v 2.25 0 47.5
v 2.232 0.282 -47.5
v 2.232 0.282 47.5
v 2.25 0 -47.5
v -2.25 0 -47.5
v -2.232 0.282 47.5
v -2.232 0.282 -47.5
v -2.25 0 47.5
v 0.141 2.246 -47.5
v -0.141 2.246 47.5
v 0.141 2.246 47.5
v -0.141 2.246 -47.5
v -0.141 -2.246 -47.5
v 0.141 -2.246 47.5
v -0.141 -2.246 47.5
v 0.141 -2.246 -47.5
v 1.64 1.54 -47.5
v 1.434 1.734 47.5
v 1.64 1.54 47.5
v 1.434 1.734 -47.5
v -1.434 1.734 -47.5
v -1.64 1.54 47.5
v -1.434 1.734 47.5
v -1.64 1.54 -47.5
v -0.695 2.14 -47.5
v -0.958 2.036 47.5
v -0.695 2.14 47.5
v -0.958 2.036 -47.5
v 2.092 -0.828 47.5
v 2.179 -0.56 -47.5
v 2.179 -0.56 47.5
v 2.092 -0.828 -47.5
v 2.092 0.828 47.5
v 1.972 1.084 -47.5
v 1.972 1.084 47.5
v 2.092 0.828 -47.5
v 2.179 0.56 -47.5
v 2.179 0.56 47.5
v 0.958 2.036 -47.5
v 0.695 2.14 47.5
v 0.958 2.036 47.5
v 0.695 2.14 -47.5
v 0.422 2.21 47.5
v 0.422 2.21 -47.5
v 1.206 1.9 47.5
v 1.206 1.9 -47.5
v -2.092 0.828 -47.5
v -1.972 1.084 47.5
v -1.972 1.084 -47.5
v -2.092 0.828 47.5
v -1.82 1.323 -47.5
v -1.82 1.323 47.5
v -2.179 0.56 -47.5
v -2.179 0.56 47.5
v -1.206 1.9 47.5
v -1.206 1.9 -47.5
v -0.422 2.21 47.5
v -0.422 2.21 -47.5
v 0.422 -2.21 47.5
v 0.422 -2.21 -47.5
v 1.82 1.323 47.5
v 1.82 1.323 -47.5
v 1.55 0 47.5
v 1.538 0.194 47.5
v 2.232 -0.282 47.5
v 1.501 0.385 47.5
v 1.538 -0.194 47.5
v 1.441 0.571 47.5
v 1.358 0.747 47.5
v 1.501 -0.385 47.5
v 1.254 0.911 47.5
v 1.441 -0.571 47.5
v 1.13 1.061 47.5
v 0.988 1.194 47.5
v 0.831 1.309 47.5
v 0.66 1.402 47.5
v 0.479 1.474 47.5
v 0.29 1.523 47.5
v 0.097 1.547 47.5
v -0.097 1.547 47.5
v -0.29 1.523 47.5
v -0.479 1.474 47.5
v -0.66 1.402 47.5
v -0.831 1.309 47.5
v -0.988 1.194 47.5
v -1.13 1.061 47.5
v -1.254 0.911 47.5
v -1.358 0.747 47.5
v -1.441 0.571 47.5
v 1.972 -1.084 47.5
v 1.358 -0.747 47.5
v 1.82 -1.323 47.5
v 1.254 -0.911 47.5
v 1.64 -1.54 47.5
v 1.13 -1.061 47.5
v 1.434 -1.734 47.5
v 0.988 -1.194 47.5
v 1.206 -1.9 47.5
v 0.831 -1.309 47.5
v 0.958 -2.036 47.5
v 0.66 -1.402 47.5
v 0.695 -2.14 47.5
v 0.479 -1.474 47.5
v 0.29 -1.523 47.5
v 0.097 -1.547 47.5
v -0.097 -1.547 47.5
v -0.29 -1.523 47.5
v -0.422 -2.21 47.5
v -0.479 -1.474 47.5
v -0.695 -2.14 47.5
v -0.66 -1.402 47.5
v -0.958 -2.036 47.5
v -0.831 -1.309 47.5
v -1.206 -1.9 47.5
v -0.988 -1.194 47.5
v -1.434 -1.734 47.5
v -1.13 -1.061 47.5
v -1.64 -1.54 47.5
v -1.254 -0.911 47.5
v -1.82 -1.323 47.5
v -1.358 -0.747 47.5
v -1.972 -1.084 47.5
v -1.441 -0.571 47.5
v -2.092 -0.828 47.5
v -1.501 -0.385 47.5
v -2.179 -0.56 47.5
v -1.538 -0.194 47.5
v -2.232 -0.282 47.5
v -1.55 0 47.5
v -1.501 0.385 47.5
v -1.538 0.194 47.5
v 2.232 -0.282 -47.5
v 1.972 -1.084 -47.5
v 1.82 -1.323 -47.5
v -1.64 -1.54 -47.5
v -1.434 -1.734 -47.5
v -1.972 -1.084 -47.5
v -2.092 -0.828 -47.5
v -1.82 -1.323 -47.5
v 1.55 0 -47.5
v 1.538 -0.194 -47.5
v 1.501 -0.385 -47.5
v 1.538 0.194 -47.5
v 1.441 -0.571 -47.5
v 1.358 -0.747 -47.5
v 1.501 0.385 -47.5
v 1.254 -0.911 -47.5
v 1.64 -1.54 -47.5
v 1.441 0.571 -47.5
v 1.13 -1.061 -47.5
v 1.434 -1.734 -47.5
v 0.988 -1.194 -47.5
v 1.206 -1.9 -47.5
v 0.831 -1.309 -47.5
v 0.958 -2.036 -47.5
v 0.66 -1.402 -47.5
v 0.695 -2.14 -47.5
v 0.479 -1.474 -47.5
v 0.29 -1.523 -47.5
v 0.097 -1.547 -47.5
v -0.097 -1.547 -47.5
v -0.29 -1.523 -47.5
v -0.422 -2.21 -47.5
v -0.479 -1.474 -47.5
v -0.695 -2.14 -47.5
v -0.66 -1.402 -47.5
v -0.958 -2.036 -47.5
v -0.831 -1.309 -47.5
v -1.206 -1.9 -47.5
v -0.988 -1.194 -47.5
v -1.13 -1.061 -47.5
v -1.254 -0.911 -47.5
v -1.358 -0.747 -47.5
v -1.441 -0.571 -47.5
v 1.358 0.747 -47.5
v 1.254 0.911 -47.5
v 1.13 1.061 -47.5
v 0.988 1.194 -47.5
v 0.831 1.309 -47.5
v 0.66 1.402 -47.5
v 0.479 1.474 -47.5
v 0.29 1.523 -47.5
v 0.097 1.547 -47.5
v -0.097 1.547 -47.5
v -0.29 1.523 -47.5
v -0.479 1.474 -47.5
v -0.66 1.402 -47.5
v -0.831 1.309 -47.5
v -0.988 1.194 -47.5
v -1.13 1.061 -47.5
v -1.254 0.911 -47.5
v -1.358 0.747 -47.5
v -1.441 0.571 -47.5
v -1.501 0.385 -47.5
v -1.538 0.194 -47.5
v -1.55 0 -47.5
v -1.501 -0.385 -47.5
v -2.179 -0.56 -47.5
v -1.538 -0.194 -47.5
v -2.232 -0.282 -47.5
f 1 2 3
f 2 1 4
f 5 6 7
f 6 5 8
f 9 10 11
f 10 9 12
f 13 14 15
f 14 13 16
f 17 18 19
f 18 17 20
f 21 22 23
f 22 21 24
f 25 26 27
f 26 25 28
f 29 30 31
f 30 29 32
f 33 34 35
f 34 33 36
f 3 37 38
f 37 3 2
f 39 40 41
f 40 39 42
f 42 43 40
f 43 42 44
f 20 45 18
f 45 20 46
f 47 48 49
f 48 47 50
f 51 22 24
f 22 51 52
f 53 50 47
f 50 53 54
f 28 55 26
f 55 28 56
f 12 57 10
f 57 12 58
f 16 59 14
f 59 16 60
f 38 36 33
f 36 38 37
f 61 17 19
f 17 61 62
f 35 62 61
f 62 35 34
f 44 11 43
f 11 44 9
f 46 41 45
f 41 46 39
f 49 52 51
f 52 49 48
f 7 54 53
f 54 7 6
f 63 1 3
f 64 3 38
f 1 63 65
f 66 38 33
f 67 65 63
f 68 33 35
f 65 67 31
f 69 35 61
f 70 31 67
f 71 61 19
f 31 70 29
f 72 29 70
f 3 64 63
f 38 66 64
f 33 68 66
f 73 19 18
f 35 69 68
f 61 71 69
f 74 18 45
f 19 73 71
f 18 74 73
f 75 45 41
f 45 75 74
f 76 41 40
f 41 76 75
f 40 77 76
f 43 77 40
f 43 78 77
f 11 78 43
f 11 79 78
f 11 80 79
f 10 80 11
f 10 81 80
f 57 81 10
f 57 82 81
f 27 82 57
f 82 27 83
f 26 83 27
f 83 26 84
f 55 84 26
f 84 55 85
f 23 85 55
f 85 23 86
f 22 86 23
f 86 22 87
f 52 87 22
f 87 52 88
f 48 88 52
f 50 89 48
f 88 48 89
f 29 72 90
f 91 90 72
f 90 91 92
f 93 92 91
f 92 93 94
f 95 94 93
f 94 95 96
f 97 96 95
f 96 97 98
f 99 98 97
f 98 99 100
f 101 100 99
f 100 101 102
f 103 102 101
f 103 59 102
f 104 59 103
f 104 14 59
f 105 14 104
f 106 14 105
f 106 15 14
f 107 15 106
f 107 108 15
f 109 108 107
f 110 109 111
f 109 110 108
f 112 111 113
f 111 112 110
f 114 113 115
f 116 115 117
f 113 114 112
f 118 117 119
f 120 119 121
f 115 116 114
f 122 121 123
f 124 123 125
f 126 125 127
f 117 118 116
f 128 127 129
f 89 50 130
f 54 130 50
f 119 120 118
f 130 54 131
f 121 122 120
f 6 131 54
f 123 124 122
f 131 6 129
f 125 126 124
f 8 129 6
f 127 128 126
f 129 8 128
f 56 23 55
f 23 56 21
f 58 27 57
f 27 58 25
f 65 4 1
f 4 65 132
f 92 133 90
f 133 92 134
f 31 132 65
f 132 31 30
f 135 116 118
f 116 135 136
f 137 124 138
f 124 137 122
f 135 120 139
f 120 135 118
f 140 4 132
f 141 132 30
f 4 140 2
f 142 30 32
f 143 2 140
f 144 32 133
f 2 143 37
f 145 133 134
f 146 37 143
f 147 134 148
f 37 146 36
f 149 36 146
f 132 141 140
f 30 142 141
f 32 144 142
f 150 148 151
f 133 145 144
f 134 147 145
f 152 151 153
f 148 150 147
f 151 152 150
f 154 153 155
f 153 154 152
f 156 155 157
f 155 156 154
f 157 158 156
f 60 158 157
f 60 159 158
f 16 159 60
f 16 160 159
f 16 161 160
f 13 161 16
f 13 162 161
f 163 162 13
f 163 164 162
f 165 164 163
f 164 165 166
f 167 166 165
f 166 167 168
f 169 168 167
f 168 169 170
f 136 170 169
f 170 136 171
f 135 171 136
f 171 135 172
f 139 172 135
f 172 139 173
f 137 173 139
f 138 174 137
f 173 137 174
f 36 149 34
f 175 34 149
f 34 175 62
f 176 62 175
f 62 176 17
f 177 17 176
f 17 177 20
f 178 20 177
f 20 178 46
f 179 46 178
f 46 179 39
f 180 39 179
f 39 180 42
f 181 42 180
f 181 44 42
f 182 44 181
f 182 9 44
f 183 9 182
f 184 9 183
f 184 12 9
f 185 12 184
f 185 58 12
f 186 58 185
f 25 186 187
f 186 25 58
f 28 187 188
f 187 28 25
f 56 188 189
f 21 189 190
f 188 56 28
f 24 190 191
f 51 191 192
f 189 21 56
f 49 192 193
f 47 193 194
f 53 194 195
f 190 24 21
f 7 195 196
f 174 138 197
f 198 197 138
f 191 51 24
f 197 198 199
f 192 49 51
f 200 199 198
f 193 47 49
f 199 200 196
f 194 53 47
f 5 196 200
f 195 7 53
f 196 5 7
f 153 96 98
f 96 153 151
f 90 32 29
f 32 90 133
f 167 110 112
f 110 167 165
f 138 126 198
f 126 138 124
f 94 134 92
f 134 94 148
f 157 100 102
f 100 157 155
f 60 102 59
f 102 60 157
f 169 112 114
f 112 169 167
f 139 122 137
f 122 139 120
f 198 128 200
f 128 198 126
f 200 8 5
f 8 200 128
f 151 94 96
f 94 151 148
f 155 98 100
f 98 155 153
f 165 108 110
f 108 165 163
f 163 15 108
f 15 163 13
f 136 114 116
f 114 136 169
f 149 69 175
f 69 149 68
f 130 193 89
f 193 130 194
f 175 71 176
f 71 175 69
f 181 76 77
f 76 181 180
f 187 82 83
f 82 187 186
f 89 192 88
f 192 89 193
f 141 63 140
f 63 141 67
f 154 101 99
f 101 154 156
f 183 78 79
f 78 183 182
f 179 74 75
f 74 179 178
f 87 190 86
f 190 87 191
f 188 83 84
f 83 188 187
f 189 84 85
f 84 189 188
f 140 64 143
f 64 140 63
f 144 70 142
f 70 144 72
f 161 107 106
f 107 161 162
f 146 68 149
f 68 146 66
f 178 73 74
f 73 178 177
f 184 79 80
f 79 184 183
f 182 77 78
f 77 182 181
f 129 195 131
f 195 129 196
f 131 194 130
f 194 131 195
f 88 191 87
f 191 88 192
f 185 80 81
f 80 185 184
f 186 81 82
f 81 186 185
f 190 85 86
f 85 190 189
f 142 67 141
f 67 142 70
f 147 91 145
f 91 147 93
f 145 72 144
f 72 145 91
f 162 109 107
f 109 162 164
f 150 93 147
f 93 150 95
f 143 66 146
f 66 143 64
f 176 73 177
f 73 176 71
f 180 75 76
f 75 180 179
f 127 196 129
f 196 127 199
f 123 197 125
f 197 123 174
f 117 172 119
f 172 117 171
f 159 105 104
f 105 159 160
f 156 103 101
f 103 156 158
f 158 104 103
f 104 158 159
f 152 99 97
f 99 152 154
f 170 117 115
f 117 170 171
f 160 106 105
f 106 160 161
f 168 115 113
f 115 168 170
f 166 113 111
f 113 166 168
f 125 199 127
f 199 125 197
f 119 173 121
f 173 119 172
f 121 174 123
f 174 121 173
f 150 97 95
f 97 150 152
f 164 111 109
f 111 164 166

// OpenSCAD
$fn = 50;


difference() {
	union() {
		translate(v = [0, 0, -47.5000000000]) {
			cylinder(h = 95, r = 2.2500000000);
		}
	}
	union() {
		translate(v = [0, 0, -100.0000000000]) {
			cylinder(h = 200, r = 1.5500000000);
		}
	}
}
